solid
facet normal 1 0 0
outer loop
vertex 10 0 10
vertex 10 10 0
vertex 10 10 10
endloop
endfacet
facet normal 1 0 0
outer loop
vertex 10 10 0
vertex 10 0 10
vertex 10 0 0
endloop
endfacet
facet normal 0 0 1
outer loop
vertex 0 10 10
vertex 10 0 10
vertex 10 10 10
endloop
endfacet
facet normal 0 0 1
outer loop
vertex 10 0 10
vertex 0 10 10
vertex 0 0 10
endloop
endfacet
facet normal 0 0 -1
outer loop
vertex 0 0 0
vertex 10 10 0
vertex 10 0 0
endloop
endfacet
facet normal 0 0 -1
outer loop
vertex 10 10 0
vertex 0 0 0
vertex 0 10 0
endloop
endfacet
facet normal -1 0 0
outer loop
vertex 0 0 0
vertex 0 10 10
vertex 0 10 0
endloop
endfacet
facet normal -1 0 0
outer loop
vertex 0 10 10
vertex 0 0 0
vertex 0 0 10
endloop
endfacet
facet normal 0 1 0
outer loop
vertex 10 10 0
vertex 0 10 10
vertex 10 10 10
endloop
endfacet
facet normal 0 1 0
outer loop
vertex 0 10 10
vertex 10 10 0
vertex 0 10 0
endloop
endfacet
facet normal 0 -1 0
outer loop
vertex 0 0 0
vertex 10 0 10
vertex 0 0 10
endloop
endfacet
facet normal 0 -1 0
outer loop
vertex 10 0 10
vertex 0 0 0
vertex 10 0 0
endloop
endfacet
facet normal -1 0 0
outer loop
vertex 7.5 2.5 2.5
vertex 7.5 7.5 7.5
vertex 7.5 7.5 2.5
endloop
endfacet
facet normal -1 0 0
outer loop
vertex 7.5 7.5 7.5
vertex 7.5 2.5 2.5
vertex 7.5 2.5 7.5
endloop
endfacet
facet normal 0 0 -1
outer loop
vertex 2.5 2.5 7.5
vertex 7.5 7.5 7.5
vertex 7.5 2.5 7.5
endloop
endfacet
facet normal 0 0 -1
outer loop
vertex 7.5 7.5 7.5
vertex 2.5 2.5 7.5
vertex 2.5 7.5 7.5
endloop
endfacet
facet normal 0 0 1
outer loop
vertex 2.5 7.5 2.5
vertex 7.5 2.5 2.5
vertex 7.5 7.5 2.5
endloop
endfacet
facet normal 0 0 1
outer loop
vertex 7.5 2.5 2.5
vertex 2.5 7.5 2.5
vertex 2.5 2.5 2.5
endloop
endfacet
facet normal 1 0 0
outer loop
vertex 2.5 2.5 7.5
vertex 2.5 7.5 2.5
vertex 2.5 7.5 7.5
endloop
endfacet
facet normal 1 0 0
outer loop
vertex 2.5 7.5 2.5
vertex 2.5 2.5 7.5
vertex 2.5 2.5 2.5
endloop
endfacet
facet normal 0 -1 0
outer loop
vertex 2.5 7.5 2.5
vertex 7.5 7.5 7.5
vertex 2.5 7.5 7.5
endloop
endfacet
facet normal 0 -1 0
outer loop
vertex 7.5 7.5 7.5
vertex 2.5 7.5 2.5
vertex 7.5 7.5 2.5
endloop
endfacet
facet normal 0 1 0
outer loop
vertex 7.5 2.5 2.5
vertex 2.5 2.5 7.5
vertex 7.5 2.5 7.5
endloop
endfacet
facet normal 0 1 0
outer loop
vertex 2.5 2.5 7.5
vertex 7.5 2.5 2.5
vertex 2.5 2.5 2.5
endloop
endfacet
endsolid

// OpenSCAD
module number_8(height=10, width=10, depth=10) {
  difference() {
    cube([width, depth, height]);
    translate([width/4, depth/4, height/4])
      cube([width/2, depth/2, height/2]);
  }
}

number_8();
